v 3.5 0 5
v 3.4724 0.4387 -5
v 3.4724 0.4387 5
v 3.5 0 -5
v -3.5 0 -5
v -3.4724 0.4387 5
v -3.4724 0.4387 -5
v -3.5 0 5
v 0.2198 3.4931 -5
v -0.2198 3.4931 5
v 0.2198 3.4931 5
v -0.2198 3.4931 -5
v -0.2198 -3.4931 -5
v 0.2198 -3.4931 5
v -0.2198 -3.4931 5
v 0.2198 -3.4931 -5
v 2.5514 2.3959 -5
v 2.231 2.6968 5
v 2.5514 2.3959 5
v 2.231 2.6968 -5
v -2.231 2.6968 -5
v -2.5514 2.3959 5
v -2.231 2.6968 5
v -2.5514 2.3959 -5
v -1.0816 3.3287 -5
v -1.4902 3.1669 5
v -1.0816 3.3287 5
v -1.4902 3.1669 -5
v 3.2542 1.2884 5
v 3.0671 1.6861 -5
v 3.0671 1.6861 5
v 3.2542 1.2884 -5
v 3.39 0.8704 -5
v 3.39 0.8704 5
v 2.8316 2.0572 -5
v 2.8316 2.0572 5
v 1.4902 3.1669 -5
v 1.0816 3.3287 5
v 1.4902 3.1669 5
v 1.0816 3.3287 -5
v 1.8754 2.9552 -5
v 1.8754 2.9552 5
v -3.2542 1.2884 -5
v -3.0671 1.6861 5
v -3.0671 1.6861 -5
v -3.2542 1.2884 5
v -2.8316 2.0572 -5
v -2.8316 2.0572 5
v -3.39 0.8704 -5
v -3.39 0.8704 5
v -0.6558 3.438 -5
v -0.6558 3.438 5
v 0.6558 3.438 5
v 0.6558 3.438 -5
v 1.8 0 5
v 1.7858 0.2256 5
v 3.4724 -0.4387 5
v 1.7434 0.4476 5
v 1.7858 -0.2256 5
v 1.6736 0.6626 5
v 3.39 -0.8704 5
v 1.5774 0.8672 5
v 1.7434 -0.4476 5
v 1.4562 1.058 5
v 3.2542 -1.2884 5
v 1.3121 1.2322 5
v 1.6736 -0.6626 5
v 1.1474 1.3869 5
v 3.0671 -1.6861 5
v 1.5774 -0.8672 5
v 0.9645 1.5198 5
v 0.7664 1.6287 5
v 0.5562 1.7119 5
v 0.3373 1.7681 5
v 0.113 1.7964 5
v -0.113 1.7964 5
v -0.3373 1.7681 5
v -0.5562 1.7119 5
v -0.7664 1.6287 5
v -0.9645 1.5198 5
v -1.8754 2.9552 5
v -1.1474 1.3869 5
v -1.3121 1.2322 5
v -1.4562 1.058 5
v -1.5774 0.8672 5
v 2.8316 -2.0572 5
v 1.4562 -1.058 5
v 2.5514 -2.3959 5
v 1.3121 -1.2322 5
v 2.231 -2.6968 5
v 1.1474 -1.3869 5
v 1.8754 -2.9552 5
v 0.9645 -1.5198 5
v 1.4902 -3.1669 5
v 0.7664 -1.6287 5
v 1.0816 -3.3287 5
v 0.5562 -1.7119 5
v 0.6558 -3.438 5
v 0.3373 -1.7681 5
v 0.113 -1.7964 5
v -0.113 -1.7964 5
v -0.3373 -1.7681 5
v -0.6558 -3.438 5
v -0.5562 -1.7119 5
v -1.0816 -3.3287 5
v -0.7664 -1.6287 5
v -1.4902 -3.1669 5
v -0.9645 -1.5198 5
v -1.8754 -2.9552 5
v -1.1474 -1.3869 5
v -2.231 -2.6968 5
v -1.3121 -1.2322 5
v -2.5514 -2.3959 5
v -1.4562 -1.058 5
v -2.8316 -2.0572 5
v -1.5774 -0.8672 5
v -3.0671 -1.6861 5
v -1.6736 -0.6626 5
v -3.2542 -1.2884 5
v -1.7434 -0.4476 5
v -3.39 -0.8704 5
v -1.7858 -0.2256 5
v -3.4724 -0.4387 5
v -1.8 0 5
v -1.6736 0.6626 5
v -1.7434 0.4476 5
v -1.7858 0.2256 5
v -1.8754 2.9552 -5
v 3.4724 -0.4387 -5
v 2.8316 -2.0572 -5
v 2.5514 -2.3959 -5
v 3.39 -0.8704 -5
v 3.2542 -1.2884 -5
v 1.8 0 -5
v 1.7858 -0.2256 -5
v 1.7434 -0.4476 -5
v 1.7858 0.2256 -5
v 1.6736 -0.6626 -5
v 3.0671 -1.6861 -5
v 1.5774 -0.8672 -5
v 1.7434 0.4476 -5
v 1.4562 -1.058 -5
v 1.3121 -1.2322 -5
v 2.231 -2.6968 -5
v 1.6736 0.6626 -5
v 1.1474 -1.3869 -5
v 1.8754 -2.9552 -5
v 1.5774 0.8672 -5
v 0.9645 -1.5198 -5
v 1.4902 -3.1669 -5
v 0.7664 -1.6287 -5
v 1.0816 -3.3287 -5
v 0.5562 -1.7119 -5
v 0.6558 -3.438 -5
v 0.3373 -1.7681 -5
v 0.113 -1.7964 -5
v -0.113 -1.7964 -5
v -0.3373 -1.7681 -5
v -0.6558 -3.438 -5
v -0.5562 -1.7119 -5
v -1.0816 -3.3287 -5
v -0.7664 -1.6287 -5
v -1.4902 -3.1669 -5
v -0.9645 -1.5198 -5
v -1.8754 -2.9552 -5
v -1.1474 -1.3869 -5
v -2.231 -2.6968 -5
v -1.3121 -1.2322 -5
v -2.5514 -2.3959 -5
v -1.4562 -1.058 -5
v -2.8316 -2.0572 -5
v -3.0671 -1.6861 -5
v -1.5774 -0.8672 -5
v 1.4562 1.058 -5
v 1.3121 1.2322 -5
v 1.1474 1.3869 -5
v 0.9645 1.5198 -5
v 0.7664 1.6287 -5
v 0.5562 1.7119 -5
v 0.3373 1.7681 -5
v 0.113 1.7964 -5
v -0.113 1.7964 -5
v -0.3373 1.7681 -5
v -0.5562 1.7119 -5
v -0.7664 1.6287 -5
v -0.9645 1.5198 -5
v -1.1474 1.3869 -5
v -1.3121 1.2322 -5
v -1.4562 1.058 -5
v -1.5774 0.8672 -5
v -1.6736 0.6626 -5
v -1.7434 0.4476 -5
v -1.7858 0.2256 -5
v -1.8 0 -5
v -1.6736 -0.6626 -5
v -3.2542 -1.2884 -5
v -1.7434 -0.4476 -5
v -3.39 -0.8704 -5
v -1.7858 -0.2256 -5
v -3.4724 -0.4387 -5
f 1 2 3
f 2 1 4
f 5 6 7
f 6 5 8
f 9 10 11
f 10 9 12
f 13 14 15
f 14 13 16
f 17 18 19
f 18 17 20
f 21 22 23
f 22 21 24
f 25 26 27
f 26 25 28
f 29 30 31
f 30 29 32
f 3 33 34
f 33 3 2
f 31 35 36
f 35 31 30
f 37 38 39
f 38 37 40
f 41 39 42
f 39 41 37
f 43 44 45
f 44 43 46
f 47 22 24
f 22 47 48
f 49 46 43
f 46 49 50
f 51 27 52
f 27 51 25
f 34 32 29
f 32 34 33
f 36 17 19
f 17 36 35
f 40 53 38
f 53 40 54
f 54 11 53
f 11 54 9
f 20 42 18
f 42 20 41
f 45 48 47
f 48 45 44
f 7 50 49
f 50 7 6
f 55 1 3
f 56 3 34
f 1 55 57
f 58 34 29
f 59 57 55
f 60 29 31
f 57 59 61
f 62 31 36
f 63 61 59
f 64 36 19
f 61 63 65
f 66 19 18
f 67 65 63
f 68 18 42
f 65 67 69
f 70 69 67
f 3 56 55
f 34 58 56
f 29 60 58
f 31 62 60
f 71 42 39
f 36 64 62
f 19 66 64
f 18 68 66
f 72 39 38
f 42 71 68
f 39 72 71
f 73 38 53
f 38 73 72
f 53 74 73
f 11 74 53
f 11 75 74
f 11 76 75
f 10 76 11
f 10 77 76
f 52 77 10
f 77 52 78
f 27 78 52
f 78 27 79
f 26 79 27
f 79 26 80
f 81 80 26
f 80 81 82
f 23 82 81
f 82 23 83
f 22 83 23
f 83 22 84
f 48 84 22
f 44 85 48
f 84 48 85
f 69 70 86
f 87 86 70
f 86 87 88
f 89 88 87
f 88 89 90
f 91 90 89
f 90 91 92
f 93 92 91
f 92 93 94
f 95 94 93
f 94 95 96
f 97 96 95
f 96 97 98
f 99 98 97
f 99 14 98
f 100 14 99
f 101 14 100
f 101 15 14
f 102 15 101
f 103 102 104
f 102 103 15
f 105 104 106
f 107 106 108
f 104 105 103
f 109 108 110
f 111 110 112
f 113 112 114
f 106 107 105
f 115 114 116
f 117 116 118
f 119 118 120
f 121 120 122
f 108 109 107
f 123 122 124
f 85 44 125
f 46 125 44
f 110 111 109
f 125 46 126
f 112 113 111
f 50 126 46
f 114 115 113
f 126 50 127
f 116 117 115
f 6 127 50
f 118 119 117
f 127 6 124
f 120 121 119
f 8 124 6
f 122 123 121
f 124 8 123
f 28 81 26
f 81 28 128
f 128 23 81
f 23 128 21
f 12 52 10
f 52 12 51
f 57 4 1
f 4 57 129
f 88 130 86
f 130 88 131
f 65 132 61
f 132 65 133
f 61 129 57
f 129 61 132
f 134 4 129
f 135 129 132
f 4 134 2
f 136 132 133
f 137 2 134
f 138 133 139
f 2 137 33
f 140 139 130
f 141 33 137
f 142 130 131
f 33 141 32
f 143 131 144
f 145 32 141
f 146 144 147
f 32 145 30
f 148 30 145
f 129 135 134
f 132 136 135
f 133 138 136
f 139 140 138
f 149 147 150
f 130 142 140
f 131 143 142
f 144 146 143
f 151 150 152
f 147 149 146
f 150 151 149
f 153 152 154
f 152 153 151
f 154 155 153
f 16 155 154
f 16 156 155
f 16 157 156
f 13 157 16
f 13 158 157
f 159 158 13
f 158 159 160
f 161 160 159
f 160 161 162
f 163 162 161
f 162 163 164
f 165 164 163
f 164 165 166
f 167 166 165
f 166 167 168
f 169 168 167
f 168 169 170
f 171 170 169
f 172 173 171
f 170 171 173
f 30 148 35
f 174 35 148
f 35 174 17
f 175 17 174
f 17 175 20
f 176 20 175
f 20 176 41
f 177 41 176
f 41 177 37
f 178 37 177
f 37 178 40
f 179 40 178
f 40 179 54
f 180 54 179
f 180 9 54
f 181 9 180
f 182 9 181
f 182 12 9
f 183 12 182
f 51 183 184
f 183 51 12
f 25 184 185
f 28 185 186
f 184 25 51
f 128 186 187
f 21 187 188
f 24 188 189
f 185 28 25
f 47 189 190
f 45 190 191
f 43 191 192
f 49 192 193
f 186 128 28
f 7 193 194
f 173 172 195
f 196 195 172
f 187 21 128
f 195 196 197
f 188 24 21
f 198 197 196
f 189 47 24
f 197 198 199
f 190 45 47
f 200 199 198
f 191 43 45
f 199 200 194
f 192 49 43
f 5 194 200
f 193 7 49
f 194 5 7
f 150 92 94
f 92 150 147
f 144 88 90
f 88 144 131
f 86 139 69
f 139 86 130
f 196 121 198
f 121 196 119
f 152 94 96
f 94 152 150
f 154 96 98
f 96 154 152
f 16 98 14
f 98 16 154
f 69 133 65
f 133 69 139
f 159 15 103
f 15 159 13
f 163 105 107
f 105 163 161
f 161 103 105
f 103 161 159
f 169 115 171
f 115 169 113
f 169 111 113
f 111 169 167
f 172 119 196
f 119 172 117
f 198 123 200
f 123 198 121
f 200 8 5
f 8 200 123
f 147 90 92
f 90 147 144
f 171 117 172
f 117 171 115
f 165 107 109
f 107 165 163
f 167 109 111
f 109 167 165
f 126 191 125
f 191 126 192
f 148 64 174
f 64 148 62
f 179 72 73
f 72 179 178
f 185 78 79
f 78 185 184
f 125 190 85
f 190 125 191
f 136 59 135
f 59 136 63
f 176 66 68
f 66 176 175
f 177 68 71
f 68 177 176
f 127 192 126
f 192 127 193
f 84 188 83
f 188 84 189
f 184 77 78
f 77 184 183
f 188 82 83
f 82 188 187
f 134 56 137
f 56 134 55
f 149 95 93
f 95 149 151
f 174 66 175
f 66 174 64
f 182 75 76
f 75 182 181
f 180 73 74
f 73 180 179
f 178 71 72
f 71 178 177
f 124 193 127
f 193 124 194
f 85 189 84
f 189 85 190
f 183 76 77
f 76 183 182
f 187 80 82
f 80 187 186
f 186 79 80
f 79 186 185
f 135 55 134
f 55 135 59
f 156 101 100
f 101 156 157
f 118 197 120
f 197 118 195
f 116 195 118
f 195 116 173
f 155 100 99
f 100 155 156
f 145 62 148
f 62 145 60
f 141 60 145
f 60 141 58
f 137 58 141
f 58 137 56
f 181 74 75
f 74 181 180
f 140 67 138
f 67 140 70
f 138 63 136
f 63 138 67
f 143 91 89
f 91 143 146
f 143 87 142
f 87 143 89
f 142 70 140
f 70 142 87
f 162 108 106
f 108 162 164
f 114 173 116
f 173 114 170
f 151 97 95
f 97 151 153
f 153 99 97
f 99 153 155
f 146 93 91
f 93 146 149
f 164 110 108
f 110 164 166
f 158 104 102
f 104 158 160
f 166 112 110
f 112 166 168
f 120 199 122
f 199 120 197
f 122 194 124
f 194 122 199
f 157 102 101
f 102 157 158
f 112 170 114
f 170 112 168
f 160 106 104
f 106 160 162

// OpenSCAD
$fn = 50;


difference() {
	union() {
		translate(v = [0, 0, -5.0000000000]) {
			cylinder(h = 10, r = 3.5000000000);
		}
	}
	union() {
		translate(v = [0, 0, -100.0000000000]) {
			cylinder(h = 200, r = 1.8000000000);
		}
	}
}
